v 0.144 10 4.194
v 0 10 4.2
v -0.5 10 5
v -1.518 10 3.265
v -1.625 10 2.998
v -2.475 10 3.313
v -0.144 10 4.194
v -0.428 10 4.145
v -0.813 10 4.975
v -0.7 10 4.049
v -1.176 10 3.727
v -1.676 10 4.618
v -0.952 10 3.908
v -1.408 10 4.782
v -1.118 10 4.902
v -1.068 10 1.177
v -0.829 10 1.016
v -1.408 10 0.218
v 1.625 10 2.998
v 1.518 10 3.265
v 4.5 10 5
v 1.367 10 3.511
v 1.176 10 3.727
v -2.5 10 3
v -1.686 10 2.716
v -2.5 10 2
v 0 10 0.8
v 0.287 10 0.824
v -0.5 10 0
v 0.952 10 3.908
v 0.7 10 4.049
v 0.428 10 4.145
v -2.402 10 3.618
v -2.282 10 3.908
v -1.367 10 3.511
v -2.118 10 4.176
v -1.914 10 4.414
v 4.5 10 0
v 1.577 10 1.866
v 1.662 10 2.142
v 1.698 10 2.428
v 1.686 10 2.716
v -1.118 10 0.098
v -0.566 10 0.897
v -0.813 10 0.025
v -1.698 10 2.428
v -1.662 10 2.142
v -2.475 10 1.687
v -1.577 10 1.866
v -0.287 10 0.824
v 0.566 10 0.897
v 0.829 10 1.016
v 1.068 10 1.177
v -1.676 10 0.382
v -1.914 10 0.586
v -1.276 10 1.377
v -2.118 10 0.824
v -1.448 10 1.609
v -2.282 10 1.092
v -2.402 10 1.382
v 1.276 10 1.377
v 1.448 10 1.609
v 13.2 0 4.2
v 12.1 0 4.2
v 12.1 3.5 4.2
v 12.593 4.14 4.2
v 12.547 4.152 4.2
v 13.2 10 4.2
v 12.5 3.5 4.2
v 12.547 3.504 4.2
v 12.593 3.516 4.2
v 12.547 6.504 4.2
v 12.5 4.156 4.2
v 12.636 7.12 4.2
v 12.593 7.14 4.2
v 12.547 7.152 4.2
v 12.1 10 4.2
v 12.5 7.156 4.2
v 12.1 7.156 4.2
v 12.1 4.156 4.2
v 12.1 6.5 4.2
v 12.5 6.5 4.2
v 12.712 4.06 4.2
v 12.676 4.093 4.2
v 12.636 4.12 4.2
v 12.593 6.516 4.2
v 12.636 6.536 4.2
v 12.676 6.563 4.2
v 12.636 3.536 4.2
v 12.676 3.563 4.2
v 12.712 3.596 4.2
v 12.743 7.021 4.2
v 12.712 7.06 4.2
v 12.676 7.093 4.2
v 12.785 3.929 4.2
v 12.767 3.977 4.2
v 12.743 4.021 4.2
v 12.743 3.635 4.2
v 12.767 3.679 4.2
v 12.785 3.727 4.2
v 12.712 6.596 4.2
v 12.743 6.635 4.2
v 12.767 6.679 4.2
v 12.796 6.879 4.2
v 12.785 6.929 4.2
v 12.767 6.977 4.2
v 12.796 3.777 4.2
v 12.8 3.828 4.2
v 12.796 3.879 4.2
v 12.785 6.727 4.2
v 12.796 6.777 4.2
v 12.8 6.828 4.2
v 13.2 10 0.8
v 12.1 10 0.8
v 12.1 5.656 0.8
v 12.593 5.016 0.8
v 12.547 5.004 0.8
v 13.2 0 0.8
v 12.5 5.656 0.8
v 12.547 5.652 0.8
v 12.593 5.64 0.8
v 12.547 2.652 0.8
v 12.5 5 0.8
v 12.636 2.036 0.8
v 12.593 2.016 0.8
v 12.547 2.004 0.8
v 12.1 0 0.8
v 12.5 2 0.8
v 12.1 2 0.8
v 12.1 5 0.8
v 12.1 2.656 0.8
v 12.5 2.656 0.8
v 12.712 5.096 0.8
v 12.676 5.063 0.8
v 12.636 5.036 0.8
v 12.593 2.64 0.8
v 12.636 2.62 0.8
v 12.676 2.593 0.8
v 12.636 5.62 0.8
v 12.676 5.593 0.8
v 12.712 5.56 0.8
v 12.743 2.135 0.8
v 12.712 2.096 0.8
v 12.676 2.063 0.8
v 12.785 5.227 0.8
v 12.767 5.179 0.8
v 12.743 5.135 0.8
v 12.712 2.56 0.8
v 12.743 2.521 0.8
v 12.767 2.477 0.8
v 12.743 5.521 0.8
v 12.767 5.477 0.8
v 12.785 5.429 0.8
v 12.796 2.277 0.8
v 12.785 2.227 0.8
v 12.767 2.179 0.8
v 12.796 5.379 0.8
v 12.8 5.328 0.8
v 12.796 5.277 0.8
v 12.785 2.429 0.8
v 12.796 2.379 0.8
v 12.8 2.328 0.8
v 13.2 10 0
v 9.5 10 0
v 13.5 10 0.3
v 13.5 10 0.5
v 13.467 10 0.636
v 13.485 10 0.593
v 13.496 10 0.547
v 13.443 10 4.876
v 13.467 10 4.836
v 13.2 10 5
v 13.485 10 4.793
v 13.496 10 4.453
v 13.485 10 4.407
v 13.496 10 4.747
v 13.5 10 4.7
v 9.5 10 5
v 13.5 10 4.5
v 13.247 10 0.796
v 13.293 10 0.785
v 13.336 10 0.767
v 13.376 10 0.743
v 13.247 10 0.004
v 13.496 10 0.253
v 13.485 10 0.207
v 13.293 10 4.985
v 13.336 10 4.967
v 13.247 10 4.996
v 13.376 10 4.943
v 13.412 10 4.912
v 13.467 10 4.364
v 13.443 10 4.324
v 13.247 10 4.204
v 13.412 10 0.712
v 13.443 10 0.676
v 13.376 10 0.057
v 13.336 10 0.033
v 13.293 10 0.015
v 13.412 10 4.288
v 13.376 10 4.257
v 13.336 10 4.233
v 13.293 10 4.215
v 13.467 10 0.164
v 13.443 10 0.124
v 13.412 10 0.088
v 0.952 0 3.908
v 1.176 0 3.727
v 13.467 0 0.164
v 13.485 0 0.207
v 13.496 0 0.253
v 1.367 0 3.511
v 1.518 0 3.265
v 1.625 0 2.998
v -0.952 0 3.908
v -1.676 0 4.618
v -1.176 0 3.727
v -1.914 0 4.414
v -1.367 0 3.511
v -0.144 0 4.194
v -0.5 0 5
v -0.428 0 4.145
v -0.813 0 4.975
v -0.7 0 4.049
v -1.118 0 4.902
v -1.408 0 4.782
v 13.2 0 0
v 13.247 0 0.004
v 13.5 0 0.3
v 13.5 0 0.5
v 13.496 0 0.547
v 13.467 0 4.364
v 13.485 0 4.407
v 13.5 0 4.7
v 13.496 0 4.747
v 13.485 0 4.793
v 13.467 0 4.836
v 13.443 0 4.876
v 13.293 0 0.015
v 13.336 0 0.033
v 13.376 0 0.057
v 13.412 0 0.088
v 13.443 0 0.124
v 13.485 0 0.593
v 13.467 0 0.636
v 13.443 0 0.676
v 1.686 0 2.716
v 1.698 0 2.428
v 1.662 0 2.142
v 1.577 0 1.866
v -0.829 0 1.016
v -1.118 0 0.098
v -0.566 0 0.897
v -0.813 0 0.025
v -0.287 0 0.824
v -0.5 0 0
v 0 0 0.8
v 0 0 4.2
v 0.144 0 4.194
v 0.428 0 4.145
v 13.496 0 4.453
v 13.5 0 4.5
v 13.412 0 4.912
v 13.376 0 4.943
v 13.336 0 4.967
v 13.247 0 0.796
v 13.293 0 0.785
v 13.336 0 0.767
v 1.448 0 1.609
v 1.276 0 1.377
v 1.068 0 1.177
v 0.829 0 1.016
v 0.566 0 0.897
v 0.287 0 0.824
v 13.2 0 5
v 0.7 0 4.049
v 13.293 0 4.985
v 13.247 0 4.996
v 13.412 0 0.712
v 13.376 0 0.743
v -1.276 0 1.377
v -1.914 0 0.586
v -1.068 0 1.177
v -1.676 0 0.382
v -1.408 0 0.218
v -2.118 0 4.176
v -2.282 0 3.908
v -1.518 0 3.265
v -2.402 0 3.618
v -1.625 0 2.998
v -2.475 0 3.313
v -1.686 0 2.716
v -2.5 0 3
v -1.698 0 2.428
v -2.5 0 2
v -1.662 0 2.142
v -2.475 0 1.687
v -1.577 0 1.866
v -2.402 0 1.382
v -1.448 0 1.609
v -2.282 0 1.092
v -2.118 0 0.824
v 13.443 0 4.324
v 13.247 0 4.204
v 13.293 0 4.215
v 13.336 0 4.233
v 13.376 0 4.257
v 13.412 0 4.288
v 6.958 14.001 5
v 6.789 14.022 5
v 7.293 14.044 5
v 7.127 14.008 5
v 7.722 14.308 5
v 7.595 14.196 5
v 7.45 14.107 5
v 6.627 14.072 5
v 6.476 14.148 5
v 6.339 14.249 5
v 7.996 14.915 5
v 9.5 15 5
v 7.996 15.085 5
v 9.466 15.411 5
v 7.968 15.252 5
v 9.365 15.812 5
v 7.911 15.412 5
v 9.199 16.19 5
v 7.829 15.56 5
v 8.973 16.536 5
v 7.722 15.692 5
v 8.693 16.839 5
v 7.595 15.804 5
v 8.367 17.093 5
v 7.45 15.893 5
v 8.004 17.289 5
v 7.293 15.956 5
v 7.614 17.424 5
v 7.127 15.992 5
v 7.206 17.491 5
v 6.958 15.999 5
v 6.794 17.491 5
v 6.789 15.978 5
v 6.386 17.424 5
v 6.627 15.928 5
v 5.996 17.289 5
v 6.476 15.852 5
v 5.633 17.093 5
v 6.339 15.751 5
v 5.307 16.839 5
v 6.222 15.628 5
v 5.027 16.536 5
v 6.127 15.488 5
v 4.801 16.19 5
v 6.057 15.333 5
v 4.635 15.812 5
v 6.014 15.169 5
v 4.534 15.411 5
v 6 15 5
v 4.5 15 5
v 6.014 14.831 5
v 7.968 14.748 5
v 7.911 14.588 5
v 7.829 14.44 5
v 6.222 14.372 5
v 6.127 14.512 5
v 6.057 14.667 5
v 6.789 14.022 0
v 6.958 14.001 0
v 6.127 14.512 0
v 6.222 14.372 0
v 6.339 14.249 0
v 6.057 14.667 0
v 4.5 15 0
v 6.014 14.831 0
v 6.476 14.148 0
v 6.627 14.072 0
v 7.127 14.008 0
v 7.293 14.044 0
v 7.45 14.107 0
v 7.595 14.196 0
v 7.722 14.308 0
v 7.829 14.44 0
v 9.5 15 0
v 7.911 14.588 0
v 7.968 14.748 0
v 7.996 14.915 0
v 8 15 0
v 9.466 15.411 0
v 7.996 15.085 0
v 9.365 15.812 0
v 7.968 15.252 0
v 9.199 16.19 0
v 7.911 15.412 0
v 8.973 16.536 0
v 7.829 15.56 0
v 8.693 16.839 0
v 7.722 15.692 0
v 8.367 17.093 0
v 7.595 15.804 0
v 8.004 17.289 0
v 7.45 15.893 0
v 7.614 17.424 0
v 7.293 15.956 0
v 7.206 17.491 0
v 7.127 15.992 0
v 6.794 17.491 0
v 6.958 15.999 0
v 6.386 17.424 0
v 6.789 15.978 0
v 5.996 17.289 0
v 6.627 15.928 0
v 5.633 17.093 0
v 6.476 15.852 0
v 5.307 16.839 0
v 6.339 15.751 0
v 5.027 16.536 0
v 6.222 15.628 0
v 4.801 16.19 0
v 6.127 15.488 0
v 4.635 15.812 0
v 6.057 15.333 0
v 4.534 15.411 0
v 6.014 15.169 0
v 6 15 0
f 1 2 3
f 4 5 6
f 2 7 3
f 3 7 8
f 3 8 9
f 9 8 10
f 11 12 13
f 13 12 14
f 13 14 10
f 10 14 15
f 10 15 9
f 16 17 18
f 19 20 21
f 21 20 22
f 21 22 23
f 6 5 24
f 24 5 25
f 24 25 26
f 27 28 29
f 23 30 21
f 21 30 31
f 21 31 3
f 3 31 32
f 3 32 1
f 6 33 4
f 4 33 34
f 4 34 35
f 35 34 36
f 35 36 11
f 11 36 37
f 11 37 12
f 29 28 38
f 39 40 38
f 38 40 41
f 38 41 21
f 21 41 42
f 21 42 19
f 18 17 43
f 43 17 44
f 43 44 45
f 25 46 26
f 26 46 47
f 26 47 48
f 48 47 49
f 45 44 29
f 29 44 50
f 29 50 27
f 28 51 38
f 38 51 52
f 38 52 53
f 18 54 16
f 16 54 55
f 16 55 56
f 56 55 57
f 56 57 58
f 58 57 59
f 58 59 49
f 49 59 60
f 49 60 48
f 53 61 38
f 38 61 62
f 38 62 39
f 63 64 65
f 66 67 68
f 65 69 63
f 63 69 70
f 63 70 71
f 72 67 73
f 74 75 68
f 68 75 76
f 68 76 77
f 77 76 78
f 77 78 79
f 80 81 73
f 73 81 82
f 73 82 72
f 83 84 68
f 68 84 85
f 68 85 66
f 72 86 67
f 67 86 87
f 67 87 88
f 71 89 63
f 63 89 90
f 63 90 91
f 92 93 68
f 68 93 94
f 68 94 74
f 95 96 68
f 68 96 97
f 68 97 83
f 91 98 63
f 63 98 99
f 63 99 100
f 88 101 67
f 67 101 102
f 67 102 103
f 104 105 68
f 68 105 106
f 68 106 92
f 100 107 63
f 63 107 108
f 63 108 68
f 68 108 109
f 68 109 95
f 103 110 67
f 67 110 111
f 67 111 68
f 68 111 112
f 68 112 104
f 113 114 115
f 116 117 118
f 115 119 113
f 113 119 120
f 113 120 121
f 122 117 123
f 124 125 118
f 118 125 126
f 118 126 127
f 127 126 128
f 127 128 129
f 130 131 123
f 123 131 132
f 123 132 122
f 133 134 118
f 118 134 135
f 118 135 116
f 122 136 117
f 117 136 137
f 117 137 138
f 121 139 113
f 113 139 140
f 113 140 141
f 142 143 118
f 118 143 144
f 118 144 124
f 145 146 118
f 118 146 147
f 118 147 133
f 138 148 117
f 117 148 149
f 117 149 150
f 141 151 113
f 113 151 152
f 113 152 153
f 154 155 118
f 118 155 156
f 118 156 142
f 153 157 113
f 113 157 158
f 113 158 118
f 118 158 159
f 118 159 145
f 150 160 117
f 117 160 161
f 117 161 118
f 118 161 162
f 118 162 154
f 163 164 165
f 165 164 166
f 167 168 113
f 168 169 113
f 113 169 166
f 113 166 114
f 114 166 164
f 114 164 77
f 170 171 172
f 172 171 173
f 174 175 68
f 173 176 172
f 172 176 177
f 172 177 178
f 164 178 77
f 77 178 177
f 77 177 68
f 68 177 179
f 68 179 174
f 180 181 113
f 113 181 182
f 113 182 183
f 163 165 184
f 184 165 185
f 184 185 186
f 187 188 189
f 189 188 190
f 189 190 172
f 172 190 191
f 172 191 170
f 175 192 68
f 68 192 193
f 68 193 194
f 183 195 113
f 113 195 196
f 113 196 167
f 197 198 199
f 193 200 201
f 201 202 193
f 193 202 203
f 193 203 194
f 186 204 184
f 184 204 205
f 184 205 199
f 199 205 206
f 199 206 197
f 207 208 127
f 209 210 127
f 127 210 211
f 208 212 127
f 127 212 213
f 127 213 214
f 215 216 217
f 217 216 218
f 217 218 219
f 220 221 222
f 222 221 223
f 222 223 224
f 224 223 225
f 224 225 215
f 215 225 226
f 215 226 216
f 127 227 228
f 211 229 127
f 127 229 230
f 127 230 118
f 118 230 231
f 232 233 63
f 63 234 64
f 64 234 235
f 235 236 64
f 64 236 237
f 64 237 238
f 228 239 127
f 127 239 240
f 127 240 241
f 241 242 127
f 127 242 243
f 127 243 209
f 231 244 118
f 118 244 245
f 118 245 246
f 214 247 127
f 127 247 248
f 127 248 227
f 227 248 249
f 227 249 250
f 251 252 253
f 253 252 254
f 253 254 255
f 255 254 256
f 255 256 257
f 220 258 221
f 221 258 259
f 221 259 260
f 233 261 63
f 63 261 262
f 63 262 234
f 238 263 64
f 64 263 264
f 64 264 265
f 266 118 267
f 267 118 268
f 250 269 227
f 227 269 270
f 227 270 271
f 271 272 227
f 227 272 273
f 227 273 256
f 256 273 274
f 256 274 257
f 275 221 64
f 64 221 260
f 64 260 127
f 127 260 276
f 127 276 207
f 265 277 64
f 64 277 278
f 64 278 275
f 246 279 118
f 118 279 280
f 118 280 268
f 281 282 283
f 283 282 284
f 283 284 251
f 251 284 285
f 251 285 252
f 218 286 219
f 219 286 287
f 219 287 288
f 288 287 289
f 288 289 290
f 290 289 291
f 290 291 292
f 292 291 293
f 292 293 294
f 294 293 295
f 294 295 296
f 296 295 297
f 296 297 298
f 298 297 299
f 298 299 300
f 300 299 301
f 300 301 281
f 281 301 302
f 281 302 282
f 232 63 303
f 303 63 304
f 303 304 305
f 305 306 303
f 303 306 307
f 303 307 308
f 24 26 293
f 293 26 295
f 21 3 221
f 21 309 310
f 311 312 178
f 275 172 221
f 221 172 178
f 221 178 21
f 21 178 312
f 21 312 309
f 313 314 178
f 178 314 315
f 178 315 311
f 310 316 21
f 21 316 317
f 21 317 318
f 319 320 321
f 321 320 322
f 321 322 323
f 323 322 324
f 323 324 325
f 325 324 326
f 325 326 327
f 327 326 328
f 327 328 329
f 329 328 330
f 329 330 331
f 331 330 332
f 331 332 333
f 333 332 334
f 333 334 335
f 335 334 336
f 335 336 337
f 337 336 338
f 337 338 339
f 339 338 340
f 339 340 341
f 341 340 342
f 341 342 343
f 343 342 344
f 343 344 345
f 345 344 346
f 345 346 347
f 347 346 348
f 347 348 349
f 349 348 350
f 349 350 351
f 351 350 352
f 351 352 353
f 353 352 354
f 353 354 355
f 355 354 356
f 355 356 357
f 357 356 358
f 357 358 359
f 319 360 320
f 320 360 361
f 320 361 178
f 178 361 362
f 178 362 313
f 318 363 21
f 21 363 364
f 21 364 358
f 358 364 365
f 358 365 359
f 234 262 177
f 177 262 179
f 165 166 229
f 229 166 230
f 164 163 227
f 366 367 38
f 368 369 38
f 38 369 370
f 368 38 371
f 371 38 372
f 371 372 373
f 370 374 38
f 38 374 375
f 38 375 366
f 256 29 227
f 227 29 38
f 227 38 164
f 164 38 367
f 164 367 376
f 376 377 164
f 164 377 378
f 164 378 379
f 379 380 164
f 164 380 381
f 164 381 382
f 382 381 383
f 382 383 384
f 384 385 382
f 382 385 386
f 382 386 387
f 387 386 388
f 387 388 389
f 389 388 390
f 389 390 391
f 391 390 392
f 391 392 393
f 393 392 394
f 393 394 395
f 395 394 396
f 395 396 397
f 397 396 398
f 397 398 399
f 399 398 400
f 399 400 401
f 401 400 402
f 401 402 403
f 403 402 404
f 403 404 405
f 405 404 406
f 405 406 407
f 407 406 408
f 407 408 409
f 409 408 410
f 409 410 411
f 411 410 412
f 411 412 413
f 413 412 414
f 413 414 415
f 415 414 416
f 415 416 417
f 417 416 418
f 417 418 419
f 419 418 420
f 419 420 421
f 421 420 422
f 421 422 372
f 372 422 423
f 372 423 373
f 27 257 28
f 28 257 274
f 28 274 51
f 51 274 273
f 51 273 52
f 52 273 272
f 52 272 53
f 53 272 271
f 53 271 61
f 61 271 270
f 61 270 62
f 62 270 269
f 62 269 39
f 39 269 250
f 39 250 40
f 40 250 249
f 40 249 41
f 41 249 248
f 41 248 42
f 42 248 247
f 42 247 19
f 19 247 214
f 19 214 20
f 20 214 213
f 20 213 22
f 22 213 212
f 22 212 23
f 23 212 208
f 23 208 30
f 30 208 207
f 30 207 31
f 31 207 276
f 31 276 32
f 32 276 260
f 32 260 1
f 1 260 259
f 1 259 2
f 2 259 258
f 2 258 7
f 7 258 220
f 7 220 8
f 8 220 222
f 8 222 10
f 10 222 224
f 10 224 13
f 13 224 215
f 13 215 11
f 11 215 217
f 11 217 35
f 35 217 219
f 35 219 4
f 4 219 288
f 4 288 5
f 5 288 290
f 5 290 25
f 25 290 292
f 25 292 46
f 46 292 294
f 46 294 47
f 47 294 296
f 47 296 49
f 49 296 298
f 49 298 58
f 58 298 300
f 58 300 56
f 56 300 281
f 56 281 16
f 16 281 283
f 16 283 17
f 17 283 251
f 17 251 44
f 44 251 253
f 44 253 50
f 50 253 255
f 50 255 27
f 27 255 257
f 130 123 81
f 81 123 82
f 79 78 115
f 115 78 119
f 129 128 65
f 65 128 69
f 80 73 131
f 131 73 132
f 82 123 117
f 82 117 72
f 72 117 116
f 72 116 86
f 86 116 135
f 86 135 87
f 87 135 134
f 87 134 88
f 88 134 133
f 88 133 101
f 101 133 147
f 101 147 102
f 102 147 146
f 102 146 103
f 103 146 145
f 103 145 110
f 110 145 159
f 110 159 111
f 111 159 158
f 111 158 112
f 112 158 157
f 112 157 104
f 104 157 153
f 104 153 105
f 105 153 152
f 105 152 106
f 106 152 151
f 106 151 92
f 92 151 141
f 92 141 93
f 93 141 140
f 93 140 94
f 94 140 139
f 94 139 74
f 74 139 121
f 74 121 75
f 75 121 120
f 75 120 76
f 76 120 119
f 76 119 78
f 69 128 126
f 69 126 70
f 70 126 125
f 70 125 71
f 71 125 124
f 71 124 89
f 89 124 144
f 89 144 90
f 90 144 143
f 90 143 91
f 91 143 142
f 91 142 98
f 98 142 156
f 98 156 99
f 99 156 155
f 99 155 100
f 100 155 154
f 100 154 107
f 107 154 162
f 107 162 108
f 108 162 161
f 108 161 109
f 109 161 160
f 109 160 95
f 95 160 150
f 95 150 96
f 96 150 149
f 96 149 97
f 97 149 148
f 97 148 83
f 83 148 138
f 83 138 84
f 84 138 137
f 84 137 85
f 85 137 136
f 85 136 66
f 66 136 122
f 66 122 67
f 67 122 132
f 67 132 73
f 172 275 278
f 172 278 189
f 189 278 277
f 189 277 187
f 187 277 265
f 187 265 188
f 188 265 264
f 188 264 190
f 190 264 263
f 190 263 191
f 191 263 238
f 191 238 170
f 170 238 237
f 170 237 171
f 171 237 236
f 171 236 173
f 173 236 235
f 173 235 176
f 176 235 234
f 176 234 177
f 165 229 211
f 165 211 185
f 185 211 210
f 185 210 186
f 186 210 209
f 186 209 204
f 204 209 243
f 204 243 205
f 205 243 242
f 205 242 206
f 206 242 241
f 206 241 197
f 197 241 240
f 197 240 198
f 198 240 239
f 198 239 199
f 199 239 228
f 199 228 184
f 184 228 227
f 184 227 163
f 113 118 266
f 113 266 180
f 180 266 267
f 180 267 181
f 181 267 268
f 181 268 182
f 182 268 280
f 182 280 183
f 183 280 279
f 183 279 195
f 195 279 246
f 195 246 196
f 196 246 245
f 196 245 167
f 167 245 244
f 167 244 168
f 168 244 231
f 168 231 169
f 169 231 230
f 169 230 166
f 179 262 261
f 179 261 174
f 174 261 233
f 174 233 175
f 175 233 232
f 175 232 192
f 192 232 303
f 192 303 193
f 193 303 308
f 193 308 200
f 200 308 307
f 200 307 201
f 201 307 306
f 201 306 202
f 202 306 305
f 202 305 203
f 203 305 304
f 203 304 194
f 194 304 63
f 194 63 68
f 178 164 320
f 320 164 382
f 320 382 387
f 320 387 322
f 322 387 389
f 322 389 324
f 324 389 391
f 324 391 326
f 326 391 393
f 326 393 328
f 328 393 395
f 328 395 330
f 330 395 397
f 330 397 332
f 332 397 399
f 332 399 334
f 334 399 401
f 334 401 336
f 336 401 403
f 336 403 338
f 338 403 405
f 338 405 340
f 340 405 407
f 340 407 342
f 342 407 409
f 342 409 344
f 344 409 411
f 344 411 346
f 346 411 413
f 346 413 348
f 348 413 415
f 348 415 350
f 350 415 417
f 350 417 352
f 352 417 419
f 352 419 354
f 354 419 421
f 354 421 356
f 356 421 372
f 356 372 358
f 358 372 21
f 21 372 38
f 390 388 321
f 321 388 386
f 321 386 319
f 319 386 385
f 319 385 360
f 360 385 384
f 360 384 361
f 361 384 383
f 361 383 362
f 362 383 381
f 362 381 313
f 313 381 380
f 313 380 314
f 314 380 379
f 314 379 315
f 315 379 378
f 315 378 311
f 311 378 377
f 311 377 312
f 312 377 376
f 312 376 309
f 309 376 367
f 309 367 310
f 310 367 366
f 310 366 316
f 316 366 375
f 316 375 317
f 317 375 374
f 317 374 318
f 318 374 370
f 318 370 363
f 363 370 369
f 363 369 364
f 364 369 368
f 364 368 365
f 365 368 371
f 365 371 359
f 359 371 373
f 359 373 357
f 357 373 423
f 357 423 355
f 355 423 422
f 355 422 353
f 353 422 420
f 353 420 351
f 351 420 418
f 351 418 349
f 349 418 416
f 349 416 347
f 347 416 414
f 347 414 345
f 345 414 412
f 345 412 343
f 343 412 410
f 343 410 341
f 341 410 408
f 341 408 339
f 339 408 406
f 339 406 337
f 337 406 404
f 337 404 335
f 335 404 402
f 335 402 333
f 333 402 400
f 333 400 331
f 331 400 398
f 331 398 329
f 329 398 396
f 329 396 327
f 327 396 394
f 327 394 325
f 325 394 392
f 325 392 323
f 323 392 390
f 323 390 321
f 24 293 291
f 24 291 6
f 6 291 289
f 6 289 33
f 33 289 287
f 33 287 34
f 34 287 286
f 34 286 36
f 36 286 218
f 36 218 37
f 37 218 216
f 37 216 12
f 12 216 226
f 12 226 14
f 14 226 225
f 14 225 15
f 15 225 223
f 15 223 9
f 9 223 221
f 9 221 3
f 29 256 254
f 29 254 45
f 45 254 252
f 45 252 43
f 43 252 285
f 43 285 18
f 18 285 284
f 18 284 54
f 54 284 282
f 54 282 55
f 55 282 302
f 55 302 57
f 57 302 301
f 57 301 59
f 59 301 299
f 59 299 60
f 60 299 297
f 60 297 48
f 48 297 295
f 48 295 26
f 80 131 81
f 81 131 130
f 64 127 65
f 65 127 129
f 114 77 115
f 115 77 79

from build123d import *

# Parameters (mm, degrees)
SKETCH_1_R      = 1.7
EXTRUDE_1_DEPTH = 10
EXTRUDE_2_DEPTH = 1.3
FILLET_1_R      = 0.3
FILLET_2_R      = 0.3
SKETCH_3_R      = 1
EXTRUDE_3_DEPTH = 5
FILLET_3_R      = 2
SKETCH_4_W      = 3.4
SKETCH_4_H      = 10
EXTRUDE_4_DEPTH = 0.6


with BuildPart() as part:
    # 草圖1 → 填料-伸長1 (new body)
    with BuildSketch(Plane(origin=(0, 0, 0), x_dir=(1, 0, 0), z_dir=(0, 1, 0))):
        Polygon((13.5, -0.8), (11.5, -0.8), (11.5, -4.2), (13.5, -4.2), (13.5, -5), (0, -5), (-2.5, -5), (-2.5, 0), (0, 0), (13.5, 0), align=None)
        with Locations(Location((0, -2.5, 0), (0, 0, 270))):
            Circle(SKETCH_1_R, mode=Mode.SUBTRACT)
    extrude(amount=EXTRUDE_1_DEPTH)

    # 草圖2 → 填料-伸長2 (add)
    with BuildSketch(Plane(origin=(11.5, 0, 0), x_dir=(0, 0, -1), z_dir=(1, 0, 0))):
        Polygon((-4.2, 7.155796618), (-0.8, 5.655796618), (-0.8, 5), (-4.2, 6.5), align=None)
        Polygon((-4.2, 4.155796618), (-0.8, 2.655796618), (-0.8, 2), (-4.2, 3.5), align=None)
    extrude(amount=EXTRUDE_2_DEPTH)

    # 圓角1
    fillet_1_edges = [part.edges().sort_by_distance(p)[0] for p in [
        (12.8, 6.405796618, 2.5),
        (12.8, 5.75, 2.5),
        (12.8, 3.405796618, 2.5),
        (12.8, 2.75, 2.5),
    ]]
    fillet(fillet_1_edges, radius=FILLET_1_R - 0.0001)  # a hair under: the kernel refuses the full size

    # 圓角2
    fillet_2_edges = [part.edges().sort_by_distance(p)[0] for p in [
        (13.5, 5, 0),
        (13.5, 5, 0.8),
        (13.5, 5, 4.2),
        (13.5, 5, 5),
    ]]
    fillet(fillet_2_edges, radius=FILLET_2_R)

    # 草圖3 → 填料-伸長3 (add)
    with BuildSketch(Plane.XY):
        with BuildLine():
            Line((4.5, 10), (4.5, 15))
            ThreePointArc((4.5, 15), (7, 17.5), (9.5, 15))
            Line((9.5, 15), (9.5, 10))
            Line((9.5, 10), (4.5, 10))
        make_face()
        with Locations(Location((7, 15, 0), (0, 0, 180))):
            Circle(SKETCH_3_R, mode=Mode.SUBTRACT)
    extrude(amount=EXTRUDE_3_DEPTH)

    # 圓角3
    fillet_3_edges = [part.edges().sort_by_distance(p)[0] for p in [
        (-2.5, 5, 5),
        (-2.5, 5, 0),
    ]]
    fillet(fillet_3_edges, radius=FILLET_3_R)

    # 草圖4 → 填料-伸長4 (add)
    with BuildSketch(Plane(origin=(11.5, 0, 0), x_dir=(0, 0, -1), z_dir=(1, 0, 0))):
        with Locations((-2.5, 5)):
            Rectangle(SKETCH_4_W, SKETCH_4_H)
    extrude(amount=EXTRUDE_4_DEPTH)


solid = part.part
